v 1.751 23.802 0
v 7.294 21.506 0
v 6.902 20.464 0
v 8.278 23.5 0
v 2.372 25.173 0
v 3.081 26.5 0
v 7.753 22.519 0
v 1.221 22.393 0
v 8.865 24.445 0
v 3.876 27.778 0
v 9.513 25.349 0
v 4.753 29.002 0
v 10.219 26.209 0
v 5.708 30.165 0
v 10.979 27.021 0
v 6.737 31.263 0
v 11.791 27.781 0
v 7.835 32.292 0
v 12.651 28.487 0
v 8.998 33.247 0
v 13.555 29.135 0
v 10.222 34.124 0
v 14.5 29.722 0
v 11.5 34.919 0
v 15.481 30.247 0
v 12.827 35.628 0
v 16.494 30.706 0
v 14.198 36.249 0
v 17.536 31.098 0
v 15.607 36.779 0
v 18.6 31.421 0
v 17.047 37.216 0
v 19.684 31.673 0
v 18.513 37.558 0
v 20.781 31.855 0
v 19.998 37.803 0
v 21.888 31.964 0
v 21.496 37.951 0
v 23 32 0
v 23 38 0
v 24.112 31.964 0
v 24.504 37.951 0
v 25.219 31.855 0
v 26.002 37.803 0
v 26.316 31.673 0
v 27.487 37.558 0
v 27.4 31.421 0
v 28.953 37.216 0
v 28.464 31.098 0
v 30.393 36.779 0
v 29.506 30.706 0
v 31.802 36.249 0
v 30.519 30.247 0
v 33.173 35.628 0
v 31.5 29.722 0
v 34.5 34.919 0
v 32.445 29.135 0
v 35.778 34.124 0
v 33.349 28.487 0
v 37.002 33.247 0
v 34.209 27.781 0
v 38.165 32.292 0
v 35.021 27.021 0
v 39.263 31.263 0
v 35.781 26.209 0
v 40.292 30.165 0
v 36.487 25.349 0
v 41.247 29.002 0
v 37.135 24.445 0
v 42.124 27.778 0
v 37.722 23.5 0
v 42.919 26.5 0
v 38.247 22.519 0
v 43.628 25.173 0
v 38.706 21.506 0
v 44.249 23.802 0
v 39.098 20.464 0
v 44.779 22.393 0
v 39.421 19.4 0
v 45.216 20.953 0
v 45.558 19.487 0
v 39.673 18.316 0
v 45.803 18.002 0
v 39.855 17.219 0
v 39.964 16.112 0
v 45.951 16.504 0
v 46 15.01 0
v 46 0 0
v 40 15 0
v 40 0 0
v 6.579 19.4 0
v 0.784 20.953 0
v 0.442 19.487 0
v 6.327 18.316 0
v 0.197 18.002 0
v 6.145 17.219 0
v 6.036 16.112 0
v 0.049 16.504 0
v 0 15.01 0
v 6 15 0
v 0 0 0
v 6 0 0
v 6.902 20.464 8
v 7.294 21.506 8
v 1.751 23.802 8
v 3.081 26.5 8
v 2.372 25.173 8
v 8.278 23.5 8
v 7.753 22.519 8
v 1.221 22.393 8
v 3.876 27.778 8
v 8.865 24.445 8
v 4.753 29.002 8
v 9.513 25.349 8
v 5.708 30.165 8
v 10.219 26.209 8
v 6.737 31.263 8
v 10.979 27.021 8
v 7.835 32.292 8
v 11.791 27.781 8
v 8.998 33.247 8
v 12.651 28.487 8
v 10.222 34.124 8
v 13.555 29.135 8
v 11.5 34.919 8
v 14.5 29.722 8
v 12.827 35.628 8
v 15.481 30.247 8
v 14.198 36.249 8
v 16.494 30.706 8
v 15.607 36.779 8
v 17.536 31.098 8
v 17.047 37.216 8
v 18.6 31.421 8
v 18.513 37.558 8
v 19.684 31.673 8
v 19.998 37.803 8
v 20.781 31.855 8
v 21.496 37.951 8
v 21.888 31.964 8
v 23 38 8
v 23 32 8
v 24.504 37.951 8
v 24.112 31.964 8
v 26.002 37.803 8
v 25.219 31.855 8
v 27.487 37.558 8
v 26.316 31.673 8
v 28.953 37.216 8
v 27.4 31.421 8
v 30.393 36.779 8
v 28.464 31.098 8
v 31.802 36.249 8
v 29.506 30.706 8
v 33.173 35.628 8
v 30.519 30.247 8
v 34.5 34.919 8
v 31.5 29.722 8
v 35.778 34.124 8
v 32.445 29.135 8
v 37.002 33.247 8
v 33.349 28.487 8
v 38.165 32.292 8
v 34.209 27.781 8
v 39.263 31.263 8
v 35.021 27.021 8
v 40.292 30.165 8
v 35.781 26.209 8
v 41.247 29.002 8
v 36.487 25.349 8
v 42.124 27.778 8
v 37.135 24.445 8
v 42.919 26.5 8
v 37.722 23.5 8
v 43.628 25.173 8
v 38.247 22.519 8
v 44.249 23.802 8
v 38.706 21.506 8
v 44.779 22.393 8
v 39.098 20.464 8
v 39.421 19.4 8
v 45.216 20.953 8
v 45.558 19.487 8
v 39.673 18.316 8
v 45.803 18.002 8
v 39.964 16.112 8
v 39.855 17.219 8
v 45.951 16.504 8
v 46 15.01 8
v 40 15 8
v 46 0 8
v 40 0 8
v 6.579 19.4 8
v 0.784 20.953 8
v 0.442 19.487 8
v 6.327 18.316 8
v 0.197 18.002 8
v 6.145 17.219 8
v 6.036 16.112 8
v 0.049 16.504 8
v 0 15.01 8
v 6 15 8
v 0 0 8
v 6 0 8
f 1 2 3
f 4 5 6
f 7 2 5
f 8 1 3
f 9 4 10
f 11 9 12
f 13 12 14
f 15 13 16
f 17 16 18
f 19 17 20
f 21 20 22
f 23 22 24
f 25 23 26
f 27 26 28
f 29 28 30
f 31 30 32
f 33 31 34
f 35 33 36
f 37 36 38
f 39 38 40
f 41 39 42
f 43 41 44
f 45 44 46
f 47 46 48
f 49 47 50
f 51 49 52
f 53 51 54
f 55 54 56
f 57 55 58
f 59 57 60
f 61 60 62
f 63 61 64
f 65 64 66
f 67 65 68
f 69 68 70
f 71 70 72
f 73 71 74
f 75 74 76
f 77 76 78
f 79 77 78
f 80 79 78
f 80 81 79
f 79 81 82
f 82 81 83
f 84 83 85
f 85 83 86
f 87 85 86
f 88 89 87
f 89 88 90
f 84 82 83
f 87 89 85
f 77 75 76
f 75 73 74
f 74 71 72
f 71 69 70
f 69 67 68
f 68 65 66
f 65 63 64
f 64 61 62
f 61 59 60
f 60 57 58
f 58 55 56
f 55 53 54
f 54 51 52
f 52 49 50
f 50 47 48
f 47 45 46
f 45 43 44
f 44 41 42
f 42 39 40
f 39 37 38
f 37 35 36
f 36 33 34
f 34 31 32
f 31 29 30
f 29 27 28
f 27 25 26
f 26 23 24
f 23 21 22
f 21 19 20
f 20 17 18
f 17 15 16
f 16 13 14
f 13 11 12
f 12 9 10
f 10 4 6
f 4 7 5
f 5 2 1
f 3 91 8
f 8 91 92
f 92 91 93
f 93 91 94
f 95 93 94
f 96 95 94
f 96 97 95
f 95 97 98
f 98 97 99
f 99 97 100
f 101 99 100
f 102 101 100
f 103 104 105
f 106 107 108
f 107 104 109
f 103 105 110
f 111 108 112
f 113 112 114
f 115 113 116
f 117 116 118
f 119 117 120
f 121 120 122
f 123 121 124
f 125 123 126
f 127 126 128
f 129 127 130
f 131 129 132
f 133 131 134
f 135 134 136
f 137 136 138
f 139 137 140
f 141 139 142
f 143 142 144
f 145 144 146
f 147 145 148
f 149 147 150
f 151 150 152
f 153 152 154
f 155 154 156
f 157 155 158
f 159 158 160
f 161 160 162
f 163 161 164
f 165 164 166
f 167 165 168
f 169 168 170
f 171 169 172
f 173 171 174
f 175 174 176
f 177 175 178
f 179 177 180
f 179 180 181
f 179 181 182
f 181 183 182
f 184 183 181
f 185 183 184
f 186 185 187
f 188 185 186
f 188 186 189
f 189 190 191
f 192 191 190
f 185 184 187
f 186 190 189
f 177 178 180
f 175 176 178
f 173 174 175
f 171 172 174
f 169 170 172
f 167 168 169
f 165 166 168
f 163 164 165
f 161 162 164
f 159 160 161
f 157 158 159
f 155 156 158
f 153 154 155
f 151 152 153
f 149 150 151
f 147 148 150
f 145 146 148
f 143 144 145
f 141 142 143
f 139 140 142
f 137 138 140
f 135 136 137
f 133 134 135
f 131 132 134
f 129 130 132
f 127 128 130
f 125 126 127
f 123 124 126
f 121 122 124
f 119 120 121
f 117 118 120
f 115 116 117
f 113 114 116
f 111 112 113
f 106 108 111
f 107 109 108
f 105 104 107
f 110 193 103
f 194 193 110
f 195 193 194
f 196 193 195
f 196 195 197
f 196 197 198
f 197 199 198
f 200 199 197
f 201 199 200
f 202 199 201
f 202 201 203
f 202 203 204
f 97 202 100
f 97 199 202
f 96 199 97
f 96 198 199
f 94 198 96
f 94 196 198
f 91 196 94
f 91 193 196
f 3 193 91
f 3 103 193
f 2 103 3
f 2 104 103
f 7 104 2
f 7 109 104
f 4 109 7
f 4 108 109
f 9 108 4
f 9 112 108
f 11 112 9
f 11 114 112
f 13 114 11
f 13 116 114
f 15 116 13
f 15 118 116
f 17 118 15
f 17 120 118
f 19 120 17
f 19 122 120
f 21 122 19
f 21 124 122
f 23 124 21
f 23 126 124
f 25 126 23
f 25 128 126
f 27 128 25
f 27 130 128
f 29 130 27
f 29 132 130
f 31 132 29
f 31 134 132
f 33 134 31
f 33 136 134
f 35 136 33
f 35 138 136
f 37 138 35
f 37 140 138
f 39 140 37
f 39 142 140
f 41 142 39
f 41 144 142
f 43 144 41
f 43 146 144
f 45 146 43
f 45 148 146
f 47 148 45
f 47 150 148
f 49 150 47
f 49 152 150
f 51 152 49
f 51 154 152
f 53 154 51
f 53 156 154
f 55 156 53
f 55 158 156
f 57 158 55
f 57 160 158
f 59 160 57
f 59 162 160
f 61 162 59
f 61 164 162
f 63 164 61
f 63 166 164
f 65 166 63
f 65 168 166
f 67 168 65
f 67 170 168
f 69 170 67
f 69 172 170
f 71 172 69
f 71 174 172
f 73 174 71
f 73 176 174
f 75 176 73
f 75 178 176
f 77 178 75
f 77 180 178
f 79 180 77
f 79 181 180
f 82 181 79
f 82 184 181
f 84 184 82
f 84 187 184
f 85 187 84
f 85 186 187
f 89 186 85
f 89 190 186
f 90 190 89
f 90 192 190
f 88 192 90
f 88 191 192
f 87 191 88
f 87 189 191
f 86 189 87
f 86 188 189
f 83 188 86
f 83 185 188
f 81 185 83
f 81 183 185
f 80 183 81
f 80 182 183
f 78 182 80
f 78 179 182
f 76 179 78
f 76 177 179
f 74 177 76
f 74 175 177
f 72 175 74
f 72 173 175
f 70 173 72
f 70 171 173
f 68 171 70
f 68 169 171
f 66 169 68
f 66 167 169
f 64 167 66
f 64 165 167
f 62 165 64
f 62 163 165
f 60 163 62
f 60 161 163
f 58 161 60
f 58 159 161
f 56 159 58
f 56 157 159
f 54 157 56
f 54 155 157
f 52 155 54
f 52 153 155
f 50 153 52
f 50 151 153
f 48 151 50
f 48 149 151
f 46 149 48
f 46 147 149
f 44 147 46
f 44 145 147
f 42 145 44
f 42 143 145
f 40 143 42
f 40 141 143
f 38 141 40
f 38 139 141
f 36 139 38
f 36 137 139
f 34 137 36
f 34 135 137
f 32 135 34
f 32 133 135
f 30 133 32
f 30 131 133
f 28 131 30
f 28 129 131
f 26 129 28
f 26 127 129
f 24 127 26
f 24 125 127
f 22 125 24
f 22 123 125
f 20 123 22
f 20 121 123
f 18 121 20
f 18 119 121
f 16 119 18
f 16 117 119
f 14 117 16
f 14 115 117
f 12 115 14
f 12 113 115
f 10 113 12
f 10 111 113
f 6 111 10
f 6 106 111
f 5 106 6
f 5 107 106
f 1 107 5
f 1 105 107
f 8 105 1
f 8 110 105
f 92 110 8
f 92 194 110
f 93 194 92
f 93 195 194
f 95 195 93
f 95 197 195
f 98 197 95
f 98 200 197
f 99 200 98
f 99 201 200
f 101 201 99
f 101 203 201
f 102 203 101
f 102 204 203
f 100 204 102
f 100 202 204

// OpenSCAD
$fn=96;
radius=20;
linear_extrude(8) union(){translate([0,0]) square([6,15.01]); translate([2*radius,0]) square([6,15.01]); intersection(){translate([radius+3,15]) difference(){circle(r=radius+3);circle(r=radius-3);} translate([-1,15]) square([2*radius+8,radius+4]);}}
